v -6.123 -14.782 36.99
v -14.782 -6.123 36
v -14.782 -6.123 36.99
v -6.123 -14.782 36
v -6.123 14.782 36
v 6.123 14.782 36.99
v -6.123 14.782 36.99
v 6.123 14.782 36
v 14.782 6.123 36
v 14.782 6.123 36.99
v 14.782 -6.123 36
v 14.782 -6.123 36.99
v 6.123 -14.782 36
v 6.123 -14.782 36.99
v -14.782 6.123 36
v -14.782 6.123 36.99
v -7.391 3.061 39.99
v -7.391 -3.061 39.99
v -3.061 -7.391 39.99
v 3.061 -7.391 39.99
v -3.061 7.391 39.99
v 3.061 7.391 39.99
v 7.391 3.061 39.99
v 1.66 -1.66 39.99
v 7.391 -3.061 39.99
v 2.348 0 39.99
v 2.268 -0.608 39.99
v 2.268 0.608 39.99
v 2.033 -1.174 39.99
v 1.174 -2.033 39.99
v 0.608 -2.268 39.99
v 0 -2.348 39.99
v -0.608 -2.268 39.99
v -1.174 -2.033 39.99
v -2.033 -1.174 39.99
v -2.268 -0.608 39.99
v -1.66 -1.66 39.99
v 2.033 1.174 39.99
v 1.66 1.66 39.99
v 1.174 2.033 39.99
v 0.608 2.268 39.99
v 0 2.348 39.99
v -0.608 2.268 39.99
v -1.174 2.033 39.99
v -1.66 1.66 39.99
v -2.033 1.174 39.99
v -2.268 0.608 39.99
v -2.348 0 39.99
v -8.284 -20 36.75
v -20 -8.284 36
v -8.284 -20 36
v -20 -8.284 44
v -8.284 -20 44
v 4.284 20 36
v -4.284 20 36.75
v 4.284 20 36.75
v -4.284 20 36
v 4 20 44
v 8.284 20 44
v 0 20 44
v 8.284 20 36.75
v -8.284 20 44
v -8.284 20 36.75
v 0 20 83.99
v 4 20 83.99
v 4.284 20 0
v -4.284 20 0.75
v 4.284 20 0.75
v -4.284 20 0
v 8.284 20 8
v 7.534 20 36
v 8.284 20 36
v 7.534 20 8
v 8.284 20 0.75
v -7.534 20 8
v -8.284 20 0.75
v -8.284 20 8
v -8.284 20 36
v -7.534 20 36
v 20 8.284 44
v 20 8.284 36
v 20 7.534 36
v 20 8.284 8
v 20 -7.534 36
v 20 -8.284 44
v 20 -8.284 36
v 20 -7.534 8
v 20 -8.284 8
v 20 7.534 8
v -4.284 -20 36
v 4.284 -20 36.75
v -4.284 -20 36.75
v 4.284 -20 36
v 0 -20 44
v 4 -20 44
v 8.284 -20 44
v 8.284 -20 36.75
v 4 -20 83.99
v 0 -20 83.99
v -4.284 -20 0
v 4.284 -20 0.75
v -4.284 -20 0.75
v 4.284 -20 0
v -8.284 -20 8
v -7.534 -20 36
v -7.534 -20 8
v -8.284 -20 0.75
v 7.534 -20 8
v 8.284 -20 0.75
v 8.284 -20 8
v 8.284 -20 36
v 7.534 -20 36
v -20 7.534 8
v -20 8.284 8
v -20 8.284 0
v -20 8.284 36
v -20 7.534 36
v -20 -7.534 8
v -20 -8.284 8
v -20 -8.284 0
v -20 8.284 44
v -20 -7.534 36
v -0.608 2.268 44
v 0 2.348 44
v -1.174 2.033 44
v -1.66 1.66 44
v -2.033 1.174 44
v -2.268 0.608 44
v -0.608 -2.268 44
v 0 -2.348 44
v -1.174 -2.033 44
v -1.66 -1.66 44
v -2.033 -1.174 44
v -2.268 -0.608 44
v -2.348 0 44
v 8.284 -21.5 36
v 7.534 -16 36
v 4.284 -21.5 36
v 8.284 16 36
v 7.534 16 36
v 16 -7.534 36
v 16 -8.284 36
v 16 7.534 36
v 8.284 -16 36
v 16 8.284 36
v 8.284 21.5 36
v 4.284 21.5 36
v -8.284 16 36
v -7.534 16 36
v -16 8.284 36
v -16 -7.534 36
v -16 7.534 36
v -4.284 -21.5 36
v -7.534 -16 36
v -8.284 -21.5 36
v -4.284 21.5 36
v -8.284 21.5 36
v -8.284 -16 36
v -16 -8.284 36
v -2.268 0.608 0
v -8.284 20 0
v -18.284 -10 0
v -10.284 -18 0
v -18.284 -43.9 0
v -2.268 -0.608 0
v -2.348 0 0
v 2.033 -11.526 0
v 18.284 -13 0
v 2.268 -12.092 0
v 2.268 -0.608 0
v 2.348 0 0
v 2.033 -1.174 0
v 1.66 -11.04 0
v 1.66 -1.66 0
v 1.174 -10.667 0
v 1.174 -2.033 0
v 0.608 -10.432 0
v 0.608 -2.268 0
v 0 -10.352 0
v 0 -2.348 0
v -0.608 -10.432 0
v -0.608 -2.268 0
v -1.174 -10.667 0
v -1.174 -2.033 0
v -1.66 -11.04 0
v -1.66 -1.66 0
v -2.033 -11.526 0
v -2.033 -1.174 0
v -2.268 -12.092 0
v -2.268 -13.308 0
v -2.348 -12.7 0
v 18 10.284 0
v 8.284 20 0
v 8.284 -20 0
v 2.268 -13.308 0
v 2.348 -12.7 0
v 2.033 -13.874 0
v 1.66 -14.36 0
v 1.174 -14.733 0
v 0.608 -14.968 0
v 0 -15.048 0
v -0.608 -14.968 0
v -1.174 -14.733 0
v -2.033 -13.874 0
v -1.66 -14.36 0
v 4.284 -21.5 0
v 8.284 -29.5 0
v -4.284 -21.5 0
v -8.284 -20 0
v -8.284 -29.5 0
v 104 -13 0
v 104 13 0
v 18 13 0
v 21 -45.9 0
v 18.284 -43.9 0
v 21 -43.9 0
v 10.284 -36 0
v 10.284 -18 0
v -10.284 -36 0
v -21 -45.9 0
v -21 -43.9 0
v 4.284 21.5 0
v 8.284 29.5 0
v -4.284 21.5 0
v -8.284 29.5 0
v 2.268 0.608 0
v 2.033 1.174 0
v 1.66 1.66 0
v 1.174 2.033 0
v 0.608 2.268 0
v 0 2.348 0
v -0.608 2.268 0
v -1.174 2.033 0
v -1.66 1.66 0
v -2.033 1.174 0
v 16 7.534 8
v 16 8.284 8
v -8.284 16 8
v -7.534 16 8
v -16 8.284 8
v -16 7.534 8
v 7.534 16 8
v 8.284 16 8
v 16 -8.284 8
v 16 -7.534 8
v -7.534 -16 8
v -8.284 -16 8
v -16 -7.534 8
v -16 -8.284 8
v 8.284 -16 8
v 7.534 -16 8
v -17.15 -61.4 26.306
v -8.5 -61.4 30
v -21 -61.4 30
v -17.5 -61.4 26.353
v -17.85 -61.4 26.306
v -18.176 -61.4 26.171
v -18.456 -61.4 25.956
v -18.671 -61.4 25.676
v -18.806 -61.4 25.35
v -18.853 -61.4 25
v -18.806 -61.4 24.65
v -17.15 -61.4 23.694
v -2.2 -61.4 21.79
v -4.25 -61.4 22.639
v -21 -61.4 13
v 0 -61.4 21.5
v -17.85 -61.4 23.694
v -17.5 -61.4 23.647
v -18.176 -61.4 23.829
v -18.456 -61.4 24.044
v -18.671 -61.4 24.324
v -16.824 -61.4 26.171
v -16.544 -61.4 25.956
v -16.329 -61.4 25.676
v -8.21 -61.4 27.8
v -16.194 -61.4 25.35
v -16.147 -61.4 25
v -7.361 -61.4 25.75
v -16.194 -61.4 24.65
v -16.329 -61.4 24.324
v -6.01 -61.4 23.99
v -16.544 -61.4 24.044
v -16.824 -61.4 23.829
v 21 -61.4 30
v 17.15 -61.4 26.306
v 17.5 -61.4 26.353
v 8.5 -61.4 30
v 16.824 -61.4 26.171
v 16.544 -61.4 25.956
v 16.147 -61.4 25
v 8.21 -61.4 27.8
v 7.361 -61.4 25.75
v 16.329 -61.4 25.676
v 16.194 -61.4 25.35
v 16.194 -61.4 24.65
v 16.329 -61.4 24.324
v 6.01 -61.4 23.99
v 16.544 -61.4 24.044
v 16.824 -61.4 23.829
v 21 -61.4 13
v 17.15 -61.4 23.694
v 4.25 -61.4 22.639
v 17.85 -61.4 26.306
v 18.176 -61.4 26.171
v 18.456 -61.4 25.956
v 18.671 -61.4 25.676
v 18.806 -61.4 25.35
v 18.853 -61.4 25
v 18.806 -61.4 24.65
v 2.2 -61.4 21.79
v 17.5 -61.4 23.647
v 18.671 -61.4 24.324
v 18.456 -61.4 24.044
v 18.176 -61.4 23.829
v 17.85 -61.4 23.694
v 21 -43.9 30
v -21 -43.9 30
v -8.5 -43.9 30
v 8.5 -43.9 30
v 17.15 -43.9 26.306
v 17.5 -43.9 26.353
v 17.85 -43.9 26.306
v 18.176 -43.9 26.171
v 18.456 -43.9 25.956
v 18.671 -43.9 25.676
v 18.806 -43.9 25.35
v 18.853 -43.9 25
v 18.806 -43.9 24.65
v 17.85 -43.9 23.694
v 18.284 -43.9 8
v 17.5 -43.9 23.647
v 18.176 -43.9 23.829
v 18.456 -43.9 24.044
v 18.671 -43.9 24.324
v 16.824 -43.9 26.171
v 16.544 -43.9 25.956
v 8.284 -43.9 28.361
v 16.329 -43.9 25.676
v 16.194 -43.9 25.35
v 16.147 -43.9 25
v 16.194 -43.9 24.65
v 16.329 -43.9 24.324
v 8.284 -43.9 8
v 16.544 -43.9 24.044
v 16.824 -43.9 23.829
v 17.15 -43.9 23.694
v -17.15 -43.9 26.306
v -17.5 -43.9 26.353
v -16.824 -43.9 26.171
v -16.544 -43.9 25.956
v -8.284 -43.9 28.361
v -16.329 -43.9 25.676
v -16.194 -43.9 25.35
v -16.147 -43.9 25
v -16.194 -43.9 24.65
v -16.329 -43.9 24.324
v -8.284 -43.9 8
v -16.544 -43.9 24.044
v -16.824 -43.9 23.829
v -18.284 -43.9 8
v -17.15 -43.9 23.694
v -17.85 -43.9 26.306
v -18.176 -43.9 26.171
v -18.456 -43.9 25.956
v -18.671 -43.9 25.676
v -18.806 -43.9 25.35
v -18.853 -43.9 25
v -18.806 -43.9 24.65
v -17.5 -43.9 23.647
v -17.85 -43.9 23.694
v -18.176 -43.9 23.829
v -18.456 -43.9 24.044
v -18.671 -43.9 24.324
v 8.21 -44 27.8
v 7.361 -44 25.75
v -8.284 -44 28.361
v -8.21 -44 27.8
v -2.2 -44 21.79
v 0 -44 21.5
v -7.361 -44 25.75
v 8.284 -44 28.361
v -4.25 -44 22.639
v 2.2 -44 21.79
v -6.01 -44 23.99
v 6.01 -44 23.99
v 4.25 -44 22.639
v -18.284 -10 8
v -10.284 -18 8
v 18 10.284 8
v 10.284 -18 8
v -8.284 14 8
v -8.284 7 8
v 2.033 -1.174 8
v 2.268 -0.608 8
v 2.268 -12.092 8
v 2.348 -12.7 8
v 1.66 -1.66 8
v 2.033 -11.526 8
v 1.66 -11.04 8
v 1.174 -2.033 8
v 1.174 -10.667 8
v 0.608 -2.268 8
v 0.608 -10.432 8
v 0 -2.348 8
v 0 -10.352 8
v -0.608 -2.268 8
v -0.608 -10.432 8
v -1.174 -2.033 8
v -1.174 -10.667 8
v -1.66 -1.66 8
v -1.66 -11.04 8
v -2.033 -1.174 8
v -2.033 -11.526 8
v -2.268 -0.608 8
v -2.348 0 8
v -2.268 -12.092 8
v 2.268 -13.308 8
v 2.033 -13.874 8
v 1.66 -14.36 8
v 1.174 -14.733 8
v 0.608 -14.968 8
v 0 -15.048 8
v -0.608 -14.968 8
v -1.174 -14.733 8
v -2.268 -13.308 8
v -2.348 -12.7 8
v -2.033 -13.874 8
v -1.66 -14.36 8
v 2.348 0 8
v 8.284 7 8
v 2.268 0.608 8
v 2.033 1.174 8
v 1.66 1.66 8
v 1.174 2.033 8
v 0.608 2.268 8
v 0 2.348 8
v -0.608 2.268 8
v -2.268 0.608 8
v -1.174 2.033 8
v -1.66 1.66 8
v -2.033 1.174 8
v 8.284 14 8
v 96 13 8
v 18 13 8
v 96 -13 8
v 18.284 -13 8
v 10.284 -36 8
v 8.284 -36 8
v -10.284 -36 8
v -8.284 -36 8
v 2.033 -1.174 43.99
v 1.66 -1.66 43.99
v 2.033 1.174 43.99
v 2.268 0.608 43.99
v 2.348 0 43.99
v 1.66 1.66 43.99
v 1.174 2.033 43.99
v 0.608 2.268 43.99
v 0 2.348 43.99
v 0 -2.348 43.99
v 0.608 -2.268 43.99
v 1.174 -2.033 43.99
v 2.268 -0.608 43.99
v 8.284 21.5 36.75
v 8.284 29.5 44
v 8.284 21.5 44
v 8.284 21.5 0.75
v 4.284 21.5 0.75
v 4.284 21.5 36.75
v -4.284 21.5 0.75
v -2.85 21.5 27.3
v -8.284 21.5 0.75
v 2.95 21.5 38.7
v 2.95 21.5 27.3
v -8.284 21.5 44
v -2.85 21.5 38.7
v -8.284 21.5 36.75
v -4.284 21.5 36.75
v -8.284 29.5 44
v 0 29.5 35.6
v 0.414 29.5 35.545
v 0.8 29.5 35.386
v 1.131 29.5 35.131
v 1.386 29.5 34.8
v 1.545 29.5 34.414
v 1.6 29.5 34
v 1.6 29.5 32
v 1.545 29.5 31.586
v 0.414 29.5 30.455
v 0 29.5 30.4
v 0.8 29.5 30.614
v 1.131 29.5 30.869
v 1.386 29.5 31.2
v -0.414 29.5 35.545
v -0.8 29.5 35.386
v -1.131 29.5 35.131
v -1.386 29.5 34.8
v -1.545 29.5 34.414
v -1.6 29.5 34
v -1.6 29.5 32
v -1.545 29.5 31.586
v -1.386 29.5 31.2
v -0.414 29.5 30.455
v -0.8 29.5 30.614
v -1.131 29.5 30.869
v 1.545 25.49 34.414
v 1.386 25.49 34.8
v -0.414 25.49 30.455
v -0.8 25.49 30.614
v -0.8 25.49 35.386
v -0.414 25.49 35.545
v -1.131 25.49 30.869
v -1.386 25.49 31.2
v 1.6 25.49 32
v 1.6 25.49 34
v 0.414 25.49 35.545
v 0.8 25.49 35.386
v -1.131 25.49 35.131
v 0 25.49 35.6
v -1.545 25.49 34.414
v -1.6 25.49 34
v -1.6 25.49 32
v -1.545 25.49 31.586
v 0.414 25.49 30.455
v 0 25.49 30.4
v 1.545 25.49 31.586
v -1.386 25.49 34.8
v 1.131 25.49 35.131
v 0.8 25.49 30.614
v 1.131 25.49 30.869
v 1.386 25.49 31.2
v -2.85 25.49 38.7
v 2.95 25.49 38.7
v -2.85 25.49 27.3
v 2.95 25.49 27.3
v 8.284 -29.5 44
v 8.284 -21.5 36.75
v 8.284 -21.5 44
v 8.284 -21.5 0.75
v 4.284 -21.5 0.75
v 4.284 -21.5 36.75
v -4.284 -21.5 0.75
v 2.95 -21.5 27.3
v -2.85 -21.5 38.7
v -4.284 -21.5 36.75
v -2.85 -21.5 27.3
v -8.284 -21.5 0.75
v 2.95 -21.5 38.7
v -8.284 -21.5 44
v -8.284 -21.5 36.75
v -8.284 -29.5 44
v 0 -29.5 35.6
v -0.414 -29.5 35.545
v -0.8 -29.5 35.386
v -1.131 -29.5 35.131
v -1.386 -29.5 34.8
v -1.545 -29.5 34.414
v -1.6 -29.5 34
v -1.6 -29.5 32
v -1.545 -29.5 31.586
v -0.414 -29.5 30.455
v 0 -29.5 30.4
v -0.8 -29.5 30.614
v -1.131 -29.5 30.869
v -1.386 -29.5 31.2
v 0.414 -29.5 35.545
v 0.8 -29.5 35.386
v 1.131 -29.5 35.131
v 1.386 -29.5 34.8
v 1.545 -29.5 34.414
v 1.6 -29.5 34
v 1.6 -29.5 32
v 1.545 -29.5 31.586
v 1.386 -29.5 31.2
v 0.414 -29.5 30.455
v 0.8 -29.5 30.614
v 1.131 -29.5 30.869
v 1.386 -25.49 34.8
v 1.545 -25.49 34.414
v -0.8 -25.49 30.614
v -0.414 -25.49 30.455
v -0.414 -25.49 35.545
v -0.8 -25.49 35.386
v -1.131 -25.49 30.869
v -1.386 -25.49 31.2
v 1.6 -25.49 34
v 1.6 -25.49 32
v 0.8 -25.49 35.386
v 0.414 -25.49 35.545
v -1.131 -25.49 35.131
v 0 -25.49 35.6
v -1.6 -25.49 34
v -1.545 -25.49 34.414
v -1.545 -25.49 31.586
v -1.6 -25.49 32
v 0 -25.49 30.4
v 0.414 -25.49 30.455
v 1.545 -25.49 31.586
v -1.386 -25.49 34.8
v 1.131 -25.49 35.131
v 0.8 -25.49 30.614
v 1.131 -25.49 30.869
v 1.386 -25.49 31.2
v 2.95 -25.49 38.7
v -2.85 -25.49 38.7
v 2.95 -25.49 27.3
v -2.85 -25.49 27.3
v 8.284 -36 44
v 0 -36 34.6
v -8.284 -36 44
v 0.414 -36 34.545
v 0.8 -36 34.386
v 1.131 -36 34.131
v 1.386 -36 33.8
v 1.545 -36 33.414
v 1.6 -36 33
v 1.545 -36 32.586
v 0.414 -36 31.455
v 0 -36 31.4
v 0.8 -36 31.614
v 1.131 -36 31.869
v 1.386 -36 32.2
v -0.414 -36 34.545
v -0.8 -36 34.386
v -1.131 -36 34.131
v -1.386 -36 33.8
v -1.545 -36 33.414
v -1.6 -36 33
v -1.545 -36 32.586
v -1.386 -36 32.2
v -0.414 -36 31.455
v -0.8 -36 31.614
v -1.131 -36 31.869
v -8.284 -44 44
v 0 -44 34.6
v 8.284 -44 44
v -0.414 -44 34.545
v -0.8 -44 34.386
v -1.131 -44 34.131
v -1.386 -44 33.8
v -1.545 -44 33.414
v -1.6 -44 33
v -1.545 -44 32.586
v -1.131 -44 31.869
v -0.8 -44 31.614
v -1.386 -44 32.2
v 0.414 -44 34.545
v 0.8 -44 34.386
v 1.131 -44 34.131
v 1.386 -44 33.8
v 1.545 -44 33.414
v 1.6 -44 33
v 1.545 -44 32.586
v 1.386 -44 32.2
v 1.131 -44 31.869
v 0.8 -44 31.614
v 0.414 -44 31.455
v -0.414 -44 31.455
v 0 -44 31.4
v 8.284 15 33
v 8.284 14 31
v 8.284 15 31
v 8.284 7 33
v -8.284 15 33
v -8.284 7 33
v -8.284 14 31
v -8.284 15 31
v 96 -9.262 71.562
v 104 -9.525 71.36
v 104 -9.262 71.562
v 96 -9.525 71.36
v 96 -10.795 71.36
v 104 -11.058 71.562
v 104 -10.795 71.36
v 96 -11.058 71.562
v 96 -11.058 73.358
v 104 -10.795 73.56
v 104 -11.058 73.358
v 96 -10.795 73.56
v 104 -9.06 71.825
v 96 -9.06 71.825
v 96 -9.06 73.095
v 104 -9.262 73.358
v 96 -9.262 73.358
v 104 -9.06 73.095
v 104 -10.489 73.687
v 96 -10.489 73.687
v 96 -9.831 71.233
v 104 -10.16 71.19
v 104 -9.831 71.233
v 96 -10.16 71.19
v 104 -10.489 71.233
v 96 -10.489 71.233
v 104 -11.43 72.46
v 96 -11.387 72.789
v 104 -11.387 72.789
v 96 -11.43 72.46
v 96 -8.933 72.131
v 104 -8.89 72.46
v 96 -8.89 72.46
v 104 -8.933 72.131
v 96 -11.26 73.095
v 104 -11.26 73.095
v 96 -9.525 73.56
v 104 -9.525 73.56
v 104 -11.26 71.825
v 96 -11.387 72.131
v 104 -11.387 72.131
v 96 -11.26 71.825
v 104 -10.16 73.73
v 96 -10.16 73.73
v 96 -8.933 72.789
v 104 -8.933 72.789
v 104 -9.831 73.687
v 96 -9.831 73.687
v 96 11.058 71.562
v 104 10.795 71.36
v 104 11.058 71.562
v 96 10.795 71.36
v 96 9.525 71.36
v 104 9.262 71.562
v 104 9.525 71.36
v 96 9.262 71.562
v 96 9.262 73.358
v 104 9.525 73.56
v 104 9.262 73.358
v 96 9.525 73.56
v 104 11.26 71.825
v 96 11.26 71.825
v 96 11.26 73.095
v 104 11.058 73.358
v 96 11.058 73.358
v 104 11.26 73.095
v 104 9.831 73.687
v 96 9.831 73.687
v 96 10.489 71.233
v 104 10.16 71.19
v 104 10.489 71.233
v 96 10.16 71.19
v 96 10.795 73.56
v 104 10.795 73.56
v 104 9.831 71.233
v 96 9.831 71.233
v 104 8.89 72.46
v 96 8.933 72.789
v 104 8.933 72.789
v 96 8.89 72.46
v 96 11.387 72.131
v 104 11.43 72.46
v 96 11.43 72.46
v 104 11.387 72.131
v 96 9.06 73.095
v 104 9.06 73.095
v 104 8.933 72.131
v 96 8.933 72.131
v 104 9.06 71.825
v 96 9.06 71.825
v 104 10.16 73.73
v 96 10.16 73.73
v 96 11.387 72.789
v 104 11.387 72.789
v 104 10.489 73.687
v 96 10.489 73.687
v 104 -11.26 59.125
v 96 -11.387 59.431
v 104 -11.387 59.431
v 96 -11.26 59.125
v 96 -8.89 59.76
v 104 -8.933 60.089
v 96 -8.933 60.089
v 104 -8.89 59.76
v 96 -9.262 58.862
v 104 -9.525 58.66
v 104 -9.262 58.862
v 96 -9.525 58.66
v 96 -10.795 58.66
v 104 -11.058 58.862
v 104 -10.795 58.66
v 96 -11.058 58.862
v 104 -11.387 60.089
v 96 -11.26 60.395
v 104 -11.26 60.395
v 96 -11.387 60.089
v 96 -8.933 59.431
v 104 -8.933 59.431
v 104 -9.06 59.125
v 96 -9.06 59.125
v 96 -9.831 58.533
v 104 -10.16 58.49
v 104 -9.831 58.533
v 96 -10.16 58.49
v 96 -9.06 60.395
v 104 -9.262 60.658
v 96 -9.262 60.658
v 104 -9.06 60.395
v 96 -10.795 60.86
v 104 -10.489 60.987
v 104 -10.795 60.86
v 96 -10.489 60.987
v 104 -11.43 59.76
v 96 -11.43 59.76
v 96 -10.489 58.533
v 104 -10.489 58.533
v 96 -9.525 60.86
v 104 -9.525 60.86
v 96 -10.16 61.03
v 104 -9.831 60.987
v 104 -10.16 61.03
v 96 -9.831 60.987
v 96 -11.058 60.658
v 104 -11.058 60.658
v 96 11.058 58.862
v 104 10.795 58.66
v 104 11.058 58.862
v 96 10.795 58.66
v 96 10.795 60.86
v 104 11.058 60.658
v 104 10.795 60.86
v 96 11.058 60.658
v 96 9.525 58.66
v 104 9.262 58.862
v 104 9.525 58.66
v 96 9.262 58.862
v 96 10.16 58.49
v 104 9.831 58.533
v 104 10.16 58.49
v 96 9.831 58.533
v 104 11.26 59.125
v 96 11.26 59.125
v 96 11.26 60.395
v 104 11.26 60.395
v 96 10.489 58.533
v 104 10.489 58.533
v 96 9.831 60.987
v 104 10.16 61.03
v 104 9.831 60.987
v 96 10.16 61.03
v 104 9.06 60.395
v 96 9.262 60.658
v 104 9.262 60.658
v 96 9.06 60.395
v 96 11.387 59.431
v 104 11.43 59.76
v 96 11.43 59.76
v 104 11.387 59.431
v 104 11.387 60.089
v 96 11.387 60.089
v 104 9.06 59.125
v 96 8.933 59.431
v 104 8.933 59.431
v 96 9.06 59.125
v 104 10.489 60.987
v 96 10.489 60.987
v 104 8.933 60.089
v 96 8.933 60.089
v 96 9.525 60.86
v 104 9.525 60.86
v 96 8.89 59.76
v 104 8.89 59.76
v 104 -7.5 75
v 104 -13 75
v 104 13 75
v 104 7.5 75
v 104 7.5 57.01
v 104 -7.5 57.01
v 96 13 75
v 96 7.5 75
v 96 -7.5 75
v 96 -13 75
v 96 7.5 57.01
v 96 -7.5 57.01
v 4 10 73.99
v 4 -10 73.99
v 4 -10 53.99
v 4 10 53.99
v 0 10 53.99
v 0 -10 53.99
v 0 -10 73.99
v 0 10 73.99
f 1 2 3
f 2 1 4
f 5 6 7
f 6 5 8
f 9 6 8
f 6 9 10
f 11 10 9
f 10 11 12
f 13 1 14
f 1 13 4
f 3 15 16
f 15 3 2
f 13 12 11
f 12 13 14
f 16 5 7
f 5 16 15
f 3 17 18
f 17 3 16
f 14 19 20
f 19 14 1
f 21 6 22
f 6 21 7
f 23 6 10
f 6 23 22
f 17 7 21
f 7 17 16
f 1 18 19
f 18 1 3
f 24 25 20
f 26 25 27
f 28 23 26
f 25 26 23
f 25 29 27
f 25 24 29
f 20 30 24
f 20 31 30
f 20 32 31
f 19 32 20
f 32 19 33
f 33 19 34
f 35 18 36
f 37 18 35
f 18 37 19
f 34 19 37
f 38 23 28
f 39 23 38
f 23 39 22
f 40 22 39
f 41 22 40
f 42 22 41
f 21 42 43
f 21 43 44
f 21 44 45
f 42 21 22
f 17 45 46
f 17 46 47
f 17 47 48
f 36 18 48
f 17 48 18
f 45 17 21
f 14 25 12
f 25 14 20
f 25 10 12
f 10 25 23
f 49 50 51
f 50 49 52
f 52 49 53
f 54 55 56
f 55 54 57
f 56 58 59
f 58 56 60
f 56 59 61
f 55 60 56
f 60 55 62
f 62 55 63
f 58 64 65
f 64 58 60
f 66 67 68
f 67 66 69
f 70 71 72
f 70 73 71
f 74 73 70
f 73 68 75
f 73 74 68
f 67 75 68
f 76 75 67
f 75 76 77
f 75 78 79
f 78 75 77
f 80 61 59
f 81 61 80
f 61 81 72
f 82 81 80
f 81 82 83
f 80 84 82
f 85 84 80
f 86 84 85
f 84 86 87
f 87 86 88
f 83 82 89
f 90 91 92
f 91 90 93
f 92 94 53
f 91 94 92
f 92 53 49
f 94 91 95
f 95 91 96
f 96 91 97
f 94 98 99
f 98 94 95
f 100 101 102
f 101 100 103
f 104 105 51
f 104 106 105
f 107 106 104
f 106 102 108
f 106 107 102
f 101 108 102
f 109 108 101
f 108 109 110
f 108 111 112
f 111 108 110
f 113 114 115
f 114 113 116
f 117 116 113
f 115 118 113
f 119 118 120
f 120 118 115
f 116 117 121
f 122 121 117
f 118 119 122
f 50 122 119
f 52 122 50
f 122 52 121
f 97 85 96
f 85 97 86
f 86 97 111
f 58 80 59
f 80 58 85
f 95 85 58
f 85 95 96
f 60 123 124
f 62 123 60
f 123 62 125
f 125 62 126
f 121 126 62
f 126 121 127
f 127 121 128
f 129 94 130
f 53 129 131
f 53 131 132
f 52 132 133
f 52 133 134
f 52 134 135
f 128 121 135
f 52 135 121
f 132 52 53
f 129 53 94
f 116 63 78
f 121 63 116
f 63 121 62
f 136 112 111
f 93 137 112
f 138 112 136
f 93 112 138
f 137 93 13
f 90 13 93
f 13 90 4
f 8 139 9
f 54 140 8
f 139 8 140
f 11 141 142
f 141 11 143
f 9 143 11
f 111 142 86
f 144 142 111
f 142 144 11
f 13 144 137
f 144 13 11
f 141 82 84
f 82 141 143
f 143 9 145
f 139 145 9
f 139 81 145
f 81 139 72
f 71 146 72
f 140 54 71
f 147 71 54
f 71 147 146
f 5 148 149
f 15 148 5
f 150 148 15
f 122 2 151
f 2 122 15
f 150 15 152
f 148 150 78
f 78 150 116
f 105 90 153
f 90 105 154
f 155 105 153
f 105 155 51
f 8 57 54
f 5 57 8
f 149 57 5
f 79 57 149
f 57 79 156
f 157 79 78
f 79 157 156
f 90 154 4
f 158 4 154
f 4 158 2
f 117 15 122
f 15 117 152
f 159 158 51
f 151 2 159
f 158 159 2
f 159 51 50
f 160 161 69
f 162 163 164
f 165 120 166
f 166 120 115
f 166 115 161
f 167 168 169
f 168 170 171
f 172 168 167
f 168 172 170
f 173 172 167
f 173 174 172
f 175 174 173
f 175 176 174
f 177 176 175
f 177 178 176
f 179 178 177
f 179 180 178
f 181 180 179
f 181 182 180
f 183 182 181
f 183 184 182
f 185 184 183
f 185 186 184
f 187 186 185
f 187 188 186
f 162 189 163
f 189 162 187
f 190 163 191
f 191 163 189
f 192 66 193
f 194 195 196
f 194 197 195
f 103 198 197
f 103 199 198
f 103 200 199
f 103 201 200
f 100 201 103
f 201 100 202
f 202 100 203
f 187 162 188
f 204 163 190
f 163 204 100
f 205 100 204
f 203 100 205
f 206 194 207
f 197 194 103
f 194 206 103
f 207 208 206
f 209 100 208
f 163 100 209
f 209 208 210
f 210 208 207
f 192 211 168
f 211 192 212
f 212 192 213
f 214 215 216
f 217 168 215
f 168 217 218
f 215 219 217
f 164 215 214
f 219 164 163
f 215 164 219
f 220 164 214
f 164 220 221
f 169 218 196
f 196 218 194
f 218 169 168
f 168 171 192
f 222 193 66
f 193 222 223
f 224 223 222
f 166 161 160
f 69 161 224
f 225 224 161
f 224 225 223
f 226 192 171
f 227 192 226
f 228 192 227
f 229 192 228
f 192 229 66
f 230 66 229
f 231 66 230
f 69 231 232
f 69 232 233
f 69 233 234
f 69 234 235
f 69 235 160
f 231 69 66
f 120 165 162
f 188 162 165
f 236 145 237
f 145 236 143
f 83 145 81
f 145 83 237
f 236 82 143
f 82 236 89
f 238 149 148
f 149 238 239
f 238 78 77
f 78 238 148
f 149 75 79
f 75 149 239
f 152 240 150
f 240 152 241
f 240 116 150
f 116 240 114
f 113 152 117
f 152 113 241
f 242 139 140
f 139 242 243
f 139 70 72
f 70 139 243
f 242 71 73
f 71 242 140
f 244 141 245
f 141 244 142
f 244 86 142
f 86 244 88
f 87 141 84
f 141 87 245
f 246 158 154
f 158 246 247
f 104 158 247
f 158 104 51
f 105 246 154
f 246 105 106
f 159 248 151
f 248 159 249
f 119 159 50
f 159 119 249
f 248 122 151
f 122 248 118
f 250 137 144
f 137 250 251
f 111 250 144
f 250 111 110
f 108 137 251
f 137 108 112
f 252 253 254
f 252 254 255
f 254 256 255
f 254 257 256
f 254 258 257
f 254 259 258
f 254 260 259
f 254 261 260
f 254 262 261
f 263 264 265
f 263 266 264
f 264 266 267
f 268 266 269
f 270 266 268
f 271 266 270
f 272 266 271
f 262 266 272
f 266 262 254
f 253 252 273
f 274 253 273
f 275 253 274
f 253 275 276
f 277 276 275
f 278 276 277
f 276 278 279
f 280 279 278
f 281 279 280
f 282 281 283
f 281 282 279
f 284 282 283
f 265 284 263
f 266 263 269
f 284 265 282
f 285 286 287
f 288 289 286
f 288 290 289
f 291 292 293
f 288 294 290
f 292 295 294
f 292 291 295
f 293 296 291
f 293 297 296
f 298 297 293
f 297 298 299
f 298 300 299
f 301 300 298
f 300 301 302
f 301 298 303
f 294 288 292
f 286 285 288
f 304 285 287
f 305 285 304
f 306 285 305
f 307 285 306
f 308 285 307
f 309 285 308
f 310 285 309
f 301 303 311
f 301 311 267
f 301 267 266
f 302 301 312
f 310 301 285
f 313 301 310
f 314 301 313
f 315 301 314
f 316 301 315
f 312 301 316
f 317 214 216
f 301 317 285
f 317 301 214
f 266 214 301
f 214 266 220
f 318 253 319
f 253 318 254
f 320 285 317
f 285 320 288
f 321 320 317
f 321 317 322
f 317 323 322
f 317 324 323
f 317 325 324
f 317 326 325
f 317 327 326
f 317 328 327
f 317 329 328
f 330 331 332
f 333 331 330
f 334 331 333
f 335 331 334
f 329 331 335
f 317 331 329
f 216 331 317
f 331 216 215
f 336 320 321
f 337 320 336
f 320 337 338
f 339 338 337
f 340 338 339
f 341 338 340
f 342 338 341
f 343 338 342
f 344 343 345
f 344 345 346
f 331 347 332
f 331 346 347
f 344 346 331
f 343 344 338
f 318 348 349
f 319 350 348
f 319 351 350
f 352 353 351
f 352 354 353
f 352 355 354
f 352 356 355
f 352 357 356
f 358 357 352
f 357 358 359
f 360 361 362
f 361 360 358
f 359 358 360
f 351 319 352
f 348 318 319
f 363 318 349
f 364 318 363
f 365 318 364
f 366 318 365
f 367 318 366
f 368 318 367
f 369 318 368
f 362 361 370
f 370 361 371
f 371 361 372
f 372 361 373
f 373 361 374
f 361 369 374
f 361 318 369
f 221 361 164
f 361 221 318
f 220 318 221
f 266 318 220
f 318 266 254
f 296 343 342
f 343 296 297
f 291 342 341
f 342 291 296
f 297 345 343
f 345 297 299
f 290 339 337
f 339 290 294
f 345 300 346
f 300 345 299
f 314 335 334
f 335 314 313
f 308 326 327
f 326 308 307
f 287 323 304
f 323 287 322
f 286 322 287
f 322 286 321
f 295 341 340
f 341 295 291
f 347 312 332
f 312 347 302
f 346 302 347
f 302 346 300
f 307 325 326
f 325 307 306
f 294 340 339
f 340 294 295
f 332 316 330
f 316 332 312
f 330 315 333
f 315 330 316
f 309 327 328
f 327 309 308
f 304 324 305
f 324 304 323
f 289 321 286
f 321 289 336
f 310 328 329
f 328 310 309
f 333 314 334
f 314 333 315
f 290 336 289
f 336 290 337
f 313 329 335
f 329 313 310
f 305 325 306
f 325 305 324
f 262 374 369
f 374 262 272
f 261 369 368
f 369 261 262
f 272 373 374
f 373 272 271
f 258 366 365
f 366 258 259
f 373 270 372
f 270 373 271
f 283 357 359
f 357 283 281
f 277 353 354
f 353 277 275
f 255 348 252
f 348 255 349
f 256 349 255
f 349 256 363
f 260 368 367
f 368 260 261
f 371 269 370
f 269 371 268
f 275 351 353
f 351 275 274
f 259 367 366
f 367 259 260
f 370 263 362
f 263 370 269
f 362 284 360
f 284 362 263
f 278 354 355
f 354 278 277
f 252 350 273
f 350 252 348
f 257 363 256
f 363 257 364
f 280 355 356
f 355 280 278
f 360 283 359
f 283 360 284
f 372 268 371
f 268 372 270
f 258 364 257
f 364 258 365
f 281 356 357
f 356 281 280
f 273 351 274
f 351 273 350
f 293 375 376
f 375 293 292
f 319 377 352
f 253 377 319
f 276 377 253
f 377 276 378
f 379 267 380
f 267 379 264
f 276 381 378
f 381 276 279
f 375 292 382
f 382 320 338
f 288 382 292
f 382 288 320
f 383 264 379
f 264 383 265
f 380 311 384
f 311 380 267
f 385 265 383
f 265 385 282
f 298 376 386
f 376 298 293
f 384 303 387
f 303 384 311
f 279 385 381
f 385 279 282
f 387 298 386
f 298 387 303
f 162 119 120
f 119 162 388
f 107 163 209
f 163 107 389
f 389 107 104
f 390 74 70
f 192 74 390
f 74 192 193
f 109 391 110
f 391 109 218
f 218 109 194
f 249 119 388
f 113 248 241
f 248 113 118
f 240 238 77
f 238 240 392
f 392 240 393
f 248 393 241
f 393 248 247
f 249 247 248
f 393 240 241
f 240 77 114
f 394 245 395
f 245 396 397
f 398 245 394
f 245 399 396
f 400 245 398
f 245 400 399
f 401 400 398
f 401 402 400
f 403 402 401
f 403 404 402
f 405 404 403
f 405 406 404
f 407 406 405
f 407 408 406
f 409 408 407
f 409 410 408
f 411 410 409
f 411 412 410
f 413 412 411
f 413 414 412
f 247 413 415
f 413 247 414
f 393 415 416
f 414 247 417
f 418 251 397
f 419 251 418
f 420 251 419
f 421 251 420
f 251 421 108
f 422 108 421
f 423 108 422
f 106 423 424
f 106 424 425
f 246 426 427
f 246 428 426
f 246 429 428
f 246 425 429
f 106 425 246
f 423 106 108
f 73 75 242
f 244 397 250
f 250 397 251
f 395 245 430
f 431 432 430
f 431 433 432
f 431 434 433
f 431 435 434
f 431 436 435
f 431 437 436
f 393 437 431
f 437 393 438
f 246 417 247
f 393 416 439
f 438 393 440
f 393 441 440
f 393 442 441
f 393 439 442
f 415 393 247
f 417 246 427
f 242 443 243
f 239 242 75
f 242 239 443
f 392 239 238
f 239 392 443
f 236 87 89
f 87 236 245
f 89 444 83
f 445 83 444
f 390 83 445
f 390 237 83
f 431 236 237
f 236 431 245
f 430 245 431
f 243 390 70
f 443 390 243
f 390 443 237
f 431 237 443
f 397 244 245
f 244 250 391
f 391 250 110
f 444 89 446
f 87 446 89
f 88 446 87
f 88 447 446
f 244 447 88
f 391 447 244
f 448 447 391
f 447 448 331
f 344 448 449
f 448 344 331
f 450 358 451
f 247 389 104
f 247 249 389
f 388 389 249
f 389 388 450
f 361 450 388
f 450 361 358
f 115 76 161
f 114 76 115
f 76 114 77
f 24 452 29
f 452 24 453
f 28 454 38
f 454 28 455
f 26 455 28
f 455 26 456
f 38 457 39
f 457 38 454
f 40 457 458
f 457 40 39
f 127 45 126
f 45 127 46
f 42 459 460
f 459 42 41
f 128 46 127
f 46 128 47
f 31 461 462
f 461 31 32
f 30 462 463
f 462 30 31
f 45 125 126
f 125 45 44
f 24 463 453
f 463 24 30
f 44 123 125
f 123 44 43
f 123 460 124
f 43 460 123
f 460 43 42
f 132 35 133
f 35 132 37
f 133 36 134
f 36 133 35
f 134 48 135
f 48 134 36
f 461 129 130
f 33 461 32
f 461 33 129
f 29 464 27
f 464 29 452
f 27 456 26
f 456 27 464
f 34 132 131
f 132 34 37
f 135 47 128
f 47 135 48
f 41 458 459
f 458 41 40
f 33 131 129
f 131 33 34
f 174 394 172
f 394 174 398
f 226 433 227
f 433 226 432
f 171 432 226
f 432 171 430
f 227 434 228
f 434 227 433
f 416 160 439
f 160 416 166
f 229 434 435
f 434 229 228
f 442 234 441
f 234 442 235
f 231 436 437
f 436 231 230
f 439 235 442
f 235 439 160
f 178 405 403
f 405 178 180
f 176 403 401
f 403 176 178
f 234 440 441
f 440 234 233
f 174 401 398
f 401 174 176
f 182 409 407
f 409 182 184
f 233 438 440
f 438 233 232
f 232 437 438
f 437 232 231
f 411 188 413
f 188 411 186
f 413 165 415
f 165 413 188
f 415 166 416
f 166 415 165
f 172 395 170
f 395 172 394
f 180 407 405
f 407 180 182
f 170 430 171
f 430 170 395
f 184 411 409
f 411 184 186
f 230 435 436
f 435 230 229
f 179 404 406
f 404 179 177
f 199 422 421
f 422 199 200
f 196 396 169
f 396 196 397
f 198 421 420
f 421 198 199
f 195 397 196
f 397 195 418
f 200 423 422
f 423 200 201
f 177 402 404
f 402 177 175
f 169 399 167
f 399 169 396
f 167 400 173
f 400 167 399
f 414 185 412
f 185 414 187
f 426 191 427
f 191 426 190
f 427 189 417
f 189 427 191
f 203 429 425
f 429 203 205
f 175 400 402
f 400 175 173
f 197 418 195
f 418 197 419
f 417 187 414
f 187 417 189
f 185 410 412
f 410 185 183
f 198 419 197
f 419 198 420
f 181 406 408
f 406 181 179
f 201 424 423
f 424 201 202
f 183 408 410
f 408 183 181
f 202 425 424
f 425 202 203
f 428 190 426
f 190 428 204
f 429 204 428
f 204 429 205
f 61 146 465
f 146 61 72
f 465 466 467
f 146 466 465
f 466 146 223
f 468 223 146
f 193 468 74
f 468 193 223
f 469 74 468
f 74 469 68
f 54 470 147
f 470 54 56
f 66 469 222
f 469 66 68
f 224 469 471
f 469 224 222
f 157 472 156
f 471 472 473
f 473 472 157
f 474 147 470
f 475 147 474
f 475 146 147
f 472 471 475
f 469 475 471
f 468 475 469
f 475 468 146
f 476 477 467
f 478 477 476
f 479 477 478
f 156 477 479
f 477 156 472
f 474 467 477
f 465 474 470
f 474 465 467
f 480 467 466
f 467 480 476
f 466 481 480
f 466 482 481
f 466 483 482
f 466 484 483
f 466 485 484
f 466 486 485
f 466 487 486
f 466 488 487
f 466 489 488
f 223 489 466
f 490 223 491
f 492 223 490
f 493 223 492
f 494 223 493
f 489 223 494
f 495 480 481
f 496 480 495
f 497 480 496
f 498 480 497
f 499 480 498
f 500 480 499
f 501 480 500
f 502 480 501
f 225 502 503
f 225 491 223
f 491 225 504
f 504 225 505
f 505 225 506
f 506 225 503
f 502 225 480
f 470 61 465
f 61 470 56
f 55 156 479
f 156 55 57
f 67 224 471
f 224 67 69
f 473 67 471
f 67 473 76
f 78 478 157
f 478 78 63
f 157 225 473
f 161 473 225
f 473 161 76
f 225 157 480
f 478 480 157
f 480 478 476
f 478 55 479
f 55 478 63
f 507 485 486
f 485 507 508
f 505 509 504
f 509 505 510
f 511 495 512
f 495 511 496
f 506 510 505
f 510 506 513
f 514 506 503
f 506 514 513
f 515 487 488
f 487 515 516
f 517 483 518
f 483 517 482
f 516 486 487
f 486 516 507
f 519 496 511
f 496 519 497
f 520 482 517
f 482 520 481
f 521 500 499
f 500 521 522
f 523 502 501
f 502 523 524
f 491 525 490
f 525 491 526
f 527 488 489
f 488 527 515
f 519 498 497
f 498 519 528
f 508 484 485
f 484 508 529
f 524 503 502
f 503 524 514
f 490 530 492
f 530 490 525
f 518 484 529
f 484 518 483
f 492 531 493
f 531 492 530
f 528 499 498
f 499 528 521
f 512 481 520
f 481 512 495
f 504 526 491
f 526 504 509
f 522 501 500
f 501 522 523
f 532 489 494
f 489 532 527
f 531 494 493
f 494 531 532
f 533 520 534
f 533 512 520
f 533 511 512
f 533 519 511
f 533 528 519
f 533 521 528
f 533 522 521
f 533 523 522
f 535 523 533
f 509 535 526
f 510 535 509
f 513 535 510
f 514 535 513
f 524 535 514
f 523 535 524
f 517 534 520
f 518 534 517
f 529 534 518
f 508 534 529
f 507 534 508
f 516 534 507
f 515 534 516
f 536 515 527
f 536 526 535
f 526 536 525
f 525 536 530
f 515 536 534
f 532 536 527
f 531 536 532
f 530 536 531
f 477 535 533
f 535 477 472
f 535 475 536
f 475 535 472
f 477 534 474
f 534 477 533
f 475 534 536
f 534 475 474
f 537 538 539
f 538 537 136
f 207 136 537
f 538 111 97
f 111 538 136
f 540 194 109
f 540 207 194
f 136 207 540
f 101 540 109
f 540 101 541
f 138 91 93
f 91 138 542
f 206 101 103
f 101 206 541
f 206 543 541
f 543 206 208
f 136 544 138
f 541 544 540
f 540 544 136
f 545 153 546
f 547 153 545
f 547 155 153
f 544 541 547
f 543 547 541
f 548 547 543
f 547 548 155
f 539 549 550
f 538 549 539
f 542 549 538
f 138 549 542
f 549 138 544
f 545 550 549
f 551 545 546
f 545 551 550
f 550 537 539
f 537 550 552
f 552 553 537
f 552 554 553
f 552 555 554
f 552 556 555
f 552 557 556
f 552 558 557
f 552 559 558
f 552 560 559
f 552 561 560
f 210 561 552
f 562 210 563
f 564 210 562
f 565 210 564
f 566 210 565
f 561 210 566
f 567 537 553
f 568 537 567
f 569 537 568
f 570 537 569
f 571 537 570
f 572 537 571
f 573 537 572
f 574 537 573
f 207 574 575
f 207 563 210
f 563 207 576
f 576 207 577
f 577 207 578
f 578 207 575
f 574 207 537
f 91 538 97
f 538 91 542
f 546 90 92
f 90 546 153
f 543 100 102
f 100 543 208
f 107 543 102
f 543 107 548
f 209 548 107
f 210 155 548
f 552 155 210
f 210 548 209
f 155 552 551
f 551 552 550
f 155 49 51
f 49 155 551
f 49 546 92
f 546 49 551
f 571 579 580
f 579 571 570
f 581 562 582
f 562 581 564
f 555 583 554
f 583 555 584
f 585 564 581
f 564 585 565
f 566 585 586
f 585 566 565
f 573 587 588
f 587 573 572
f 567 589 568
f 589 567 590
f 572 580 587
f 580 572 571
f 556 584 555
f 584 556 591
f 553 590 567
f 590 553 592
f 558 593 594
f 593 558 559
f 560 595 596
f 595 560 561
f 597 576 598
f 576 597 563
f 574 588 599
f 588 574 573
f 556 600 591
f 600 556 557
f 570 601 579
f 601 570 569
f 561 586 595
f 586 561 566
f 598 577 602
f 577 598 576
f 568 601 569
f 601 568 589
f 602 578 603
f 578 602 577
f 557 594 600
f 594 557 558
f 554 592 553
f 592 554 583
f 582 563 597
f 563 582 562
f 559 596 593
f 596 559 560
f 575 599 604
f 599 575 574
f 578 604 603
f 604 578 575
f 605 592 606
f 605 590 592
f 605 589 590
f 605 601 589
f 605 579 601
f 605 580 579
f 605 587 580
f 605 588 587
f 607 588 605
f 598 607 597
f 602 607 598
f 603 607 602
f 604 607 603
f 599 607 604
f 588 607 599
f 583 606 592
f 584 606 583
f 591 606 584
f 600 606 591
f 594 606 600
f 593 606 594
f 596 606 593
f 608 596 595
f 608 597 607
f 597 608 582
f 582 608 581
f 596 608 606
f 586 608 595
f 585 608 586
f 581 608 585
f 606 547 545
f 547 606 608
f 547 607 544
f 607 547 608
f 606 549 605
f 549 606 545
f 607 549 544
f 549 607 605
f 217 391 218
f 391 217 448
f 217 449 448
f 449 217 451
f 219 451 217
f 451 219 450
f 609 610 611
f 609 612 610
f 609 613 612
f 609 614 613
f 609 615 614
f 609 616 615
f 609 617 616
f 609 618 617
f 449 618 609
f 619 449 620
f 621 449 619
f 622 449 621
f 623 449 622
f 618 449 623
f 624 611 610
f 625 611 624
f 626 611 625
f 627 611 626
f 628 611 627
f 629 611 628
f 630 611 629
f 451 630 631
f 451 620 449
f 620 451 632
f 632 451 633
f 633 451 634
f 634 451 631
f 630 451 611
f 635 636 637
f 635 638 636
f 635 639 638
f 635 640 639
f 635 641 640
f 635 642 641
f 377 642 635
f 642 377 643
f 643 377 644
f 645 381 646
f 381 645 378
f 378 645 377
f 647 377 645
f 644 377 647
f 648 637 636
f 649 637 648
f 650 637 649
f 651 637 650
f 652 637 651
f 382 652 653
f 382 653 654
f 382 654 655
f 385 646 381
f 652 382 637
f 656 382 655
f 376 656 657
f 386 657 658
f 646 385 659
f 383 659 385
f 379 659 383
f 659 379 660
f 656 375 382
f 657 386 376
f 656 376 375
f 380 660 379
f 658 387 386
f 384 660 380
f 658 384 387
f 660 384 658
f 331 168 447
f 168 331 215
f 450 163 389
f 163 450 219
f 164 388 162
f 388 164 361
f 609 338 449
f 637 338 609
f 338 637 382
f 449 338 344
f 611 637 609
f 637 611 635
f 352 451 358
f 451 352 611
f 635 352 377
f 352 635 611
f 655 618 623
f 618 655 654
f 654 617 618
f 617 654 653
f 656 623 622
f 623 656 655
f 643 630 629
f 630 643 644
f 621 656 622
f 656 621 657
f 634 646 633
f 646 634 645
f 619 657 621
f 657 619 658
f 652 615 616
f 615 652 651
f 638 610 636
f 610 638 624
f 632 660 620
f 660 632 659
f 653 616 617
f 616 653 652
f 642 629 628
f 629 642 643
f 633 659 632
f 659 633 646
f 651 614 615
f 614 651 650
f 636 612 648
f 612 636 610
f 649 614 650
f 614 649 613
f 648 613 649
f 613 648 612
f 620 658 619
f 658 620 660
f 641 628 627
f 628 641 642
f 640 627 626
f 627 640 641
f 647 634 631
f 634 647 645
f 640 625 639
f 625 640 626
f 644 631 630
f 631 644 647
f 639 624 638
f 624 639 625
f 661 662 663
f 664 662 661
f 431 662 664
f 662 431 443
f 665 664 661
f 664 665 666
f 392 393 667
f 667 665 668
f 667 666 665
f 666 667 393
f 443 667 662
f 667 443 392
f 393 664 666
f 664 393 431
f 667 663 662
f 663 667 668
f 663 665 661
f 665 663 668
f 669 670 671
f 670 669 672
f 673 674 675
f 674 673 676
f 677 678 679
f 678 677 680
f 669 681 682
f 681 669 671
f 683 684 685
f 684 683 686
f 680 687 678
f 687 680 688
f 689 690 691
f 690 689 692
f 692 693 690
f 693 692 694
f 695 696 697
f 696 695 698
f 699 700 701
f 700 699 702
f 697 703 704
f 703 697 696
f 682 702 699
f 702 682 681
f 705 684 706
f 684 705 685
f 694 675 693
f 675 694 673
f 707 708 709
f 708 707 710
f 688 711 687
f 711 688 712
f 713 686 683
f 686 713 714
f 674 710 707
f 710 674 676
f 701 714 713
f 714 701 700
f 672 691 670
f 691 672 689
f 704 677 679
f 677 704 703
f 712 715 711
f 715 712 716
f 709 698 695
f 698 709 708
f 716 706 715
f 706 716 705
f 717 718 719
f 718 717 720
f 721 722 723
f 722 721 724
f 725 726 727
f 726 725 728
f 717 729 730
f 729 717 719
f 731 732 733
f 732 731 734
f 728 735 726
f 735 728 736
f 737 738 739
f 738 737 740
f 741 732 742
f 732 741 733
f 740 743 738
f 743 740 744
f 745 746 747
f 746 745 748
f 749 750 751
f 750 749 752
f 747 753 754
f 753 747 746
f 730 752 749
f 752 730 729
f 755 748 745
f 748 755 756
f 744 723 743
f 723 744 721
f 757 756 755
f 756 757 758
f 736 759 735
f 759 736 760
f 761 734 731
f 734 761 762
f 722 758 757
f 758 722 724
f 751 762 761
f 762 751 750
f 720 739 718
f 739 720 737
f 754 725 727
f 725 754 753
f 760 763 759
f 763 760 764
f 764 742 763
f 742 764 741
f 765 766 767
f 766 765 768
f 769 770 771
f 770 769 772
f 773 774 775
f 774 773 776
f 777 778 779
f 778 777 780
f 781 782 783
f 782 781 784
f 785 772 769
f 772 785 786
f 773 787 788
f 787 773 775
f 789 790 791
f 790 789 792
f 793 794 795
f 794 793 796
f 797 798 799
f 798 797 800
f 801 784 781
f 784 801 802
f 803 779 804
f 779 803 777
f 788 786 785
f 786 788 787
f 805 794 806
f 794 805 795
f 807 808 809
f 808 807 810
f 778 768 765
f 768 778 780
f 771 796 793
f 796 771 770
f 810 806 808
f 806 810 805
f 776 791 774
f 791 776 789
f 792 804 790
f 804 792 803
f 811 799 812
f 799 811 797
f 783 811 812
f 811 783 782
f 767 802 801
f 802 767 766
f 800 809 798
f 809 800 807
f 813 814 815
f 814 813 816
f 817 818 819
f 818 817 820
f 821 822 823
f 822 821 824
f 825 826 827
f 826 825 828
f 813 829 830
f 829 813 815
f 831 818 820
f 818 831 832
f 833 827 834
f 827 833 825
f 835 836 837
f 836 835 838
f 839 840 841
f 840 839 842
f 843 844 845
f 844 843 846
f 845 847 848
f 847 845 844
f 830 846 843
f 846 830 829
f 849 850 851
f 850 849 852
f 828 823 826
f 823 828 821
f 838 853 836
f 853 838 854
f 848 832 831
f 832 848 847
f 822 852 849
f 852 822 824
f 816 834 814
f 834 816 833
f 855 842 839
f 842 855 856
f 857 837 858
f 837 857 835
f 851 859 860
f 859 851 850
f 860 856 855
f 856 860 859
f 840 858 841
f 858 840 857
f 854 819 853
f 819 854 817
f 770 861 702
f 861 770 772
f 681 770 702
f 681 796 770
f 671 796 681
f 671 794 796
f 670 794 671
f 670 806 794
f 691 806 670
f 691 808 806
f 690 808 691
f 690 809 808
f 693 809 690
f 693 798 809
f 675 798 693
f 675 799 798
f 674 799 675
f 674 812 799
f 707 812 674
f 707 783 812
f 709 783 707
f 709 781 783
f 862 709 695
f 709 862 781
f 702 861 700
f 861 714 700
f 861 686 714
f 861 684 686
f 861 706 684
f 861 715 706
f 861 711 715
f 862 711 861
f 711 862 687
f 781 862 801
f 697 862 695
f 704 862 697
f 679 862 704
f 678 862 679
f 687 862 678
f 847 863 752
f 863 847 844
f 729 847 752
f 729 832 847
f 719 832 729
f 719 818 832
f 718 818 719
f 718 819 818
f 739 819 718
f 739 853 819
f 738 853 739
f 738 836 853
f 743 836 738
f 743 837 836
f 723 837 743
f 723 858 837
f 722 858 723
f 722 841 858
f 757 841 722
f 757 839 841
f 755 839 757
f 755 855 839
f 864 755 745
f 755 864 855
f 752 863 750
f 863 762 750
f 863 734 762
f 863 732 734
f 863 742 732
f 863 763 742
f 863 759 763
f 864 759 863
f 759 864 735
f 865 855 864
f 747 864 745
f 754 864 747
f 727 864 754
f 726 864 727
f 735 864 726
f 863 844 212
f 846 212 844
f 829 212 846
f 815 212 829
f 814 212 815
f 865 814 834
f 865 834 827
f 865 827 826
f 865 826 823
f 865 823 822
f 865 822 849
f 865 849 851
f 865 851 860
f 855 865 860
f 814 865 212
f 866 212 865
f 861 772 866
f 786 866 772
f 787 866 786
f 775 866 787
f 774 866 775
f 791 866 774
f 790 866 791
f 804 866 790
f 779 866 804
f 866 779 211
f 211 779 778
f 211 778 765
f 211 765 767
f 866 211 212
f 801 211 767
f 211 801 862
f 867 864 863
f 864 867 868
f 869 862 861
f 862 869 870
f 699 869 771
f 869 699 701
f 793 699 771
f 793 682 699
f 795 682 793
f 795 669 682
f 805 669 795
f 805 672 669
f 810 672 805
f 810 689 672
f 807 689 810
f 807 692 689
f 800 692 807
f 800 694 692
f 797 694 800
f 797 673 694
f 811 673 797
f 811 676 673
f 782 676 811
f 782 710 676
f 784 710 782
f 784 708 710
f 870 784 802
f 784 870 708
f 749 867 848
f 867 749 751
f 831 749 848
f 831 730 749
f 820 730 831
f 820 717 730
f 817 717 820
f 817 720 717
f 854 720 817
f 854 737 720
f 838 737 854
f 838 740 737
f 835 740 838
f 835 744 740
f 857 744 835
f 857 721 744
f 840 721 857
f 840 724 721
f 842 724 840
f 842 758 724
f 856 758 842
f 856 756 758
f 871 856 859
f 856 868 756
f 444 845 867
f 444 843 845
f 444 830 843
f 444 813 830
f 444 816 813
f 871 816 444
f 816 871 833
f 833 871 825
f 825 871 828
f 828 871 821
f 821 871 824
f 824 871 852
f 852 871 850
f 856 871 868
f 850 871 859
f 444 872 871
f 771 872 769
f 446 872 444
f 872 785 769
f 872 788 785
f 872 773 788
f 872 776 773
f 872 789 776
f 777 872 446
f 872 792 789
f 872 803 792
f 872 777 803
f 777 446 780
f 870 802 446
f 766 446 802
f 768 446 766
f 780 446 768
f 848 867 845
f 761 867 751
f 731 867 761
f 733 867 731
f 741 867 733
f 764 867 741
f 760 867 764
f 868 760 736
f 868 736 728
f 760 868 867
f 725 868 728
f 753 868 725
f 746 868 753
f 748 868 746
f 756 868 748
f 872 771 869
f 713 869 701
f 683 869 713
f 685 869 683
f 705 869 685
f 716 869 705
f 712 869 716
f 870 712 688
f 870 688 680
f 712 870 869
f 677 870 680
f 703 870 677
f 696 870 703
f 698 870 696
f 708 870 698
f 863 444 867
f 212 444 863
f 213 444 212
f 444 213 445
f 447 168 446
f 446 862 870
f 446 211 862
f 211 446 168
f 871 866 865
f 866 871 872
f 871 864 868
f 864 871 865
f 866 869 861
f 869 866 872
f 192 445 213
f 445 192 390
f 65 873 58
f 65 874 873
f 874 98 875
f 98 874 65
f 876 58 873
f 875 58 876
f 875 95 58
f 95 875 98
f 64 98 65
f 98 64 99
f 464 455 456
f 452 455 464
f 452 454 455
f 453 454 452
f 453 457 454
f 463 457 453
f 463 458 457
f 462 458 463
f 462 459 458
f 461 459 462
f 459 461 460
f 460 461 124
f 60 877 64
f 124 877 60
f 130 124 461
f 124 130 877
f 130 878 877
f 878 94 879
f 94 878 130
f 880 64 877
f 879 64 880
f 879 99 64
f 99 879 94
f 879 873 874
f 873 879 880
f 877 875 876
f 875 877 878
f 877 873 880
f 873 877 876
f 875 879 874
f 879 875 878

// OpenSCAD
// file: screws.scad
// screws_v15a.scad
// definitions for common screws, threads, clearance holes. etc
// Diameters are specified
// First are the SAE (inches)
// Next the Metric
// ProfHuster@gmail.com
// 2015-10-08
//
$fn = 48;
zz = 0.01;
zz2 = 2*zz;
// define conversion since openSCAD defaults to metric
inch2mm = 25.4;

// tap drill sizes
nc2_56tap = 0.070 * inch2mm;
nc4_40tap = 2.261;
nc6_32tap = 2.705;
nc8_32tap = 3.454;
nc10_24tap = 3.797;
q20tap = 0.2010 * inch2mm;

// nominal sizes
q20nom = 0.250 * inch2mm;
// clearance sizes
nc2_56close = 0.0890 * inch2mm;
nc2_56free = 0.0960 * inch2mm;
nc4_40close = 0.1160 * inch2mm;
nc4_40free = 0.1285 * inch2mm;
nc6_32close = 0.1440 * inch2mm;
nc6_32free = 0.1495 * inch2mm;
nc8_32close = 0.1695 * inch2mm;
nc8_32free = 0.1770 * inch2mm;
nc10_32close = 0.1960 * inch2mm;
nc10_32free = 0.2010 * inch2mm;
q20close = 0.2570 * inch2mm;
q20free = 0.2660 * inch2mm;

// nut sizes
nc4_40NutHex = inch2mm * 1/4;
nc6_32NutHex = inch2mm * 5/16;
nc8_32NutHex = inch2mm * 11/32;
nc10_32NutHex = inch2mm * 3/8;
q20NutHex = inch2mm * 7/16;

nc4_40NutTh = inch2mm * 3/32;
nc6_32NutTh = inch2mm * 7/64;
nc8_32NutTh = inch2mm * 1/8;
nc10_32NutTh = inch2mm * 1/8;
q20NutTh = inch2mm * 3/16;

// socket head cap screws
nc4_40HeadDia = 0.179 * inch2mm;
nc4_40HeadHi = 0.110 * inch2mm;
nc4_40Hex = (3/32) * inch2mm;
nc4_40HexDepth = 0.051 * inch2mm;

nc6_32HeadDia = 0.222 * inch2mm;
nc6_32HeadHi = 0.136 * inch2mm;
nc6_32Hex = (7/64) * inch2mm;
nc6_32HexDepth = 0.064 * inch2mm;

nc8_32HeadDia = 0.266 * inch2mm;
nc8_32HeadHi = 0.162 * inch2mm;
nc8_32Hex = (9/64) * inch2mm;
nc8_32HexDepth = 0.077 * inch2mm;

nc10_24HeadDia = 0.308 * inch2mm;
nc10_24HeadHi = 0.188 * inch2mm;
nc10_24Hex = (5/32) * inch2mm;
nc10_24HexDepth = 0.090 * inch2mm;

q20HeadDia = 0.370 * inch2mm;
q20HeadHi = 0.247 * inch2mm;
q20Hex = (3/16) * inch2mm;
q20HexDepth = 0.120 * inch2mm;

module hexagon(size, height) {
  boxWidth = size/1.75;
  for (r = [-60, 0, 60]) 
    rotate([0,0,r]) 
    cube([boxWidth, size, height], true);
}

module q20screw(length = 1.0 * inch2mm){
    difference() {
        cylinder(q20HeadHi,q20HeadDia/2,q20HeadDia/2);
        translate([0,0,q20HeadHi-q20HexDepth/2]) hexagon(q20Hex,q20HexDepth+zz);
    }
    translate([0,0,-length]) cylinder(length,q20close/2,q20close/2);
}

// test
// q20screw();

// M E T R I C 
m2_5tap = 2.05;
m2_5free = 2.9;
m2_5NutHex = 5.0;
m2_5NutTh = 2.0;

m3_tap = 2.5;
m3_free = 3.4;
m3_NutHex = 5.5;
m3_NutTh = 2.4;

// EOF
// main file
/*************************************************************
X-Y Precision Translation Stage.

(c) Michael Huster 2017, please share under CC-BY 3.0
You can use it for what you like, but attribution would be 
very nice.  Thanks!

v 17c - inspired by open microscope, but flex joints were vertical - Won't work
v 17d - flex joints are horizontal
v 17f - band pulls stage away from adj screw
v 18a - made a little heftier by increasing stageTh, tongueL
  and fixed pillarTh & bandTab for rubber band tongue
  Removed hold_from_bottom and square_to_circle because not used
  Added knobs to attach to stepper motor
v18b - changed to two mount holes
v22a - Added mount arm and holder for light sensor.
v22b - Changed nut capture to sliding groove for drive screw.
*************************************************************/
include <screws.scad>
// $fn=96;
$fn=24;
eps=0.01;
eps2 = 2 * eps;
i2m = 25.4;

printKnobs = false;
printBase = true;
printMotor = false;
printMount = true;
printSpacer = false;
// options
echo("\n=====\n");
// flexure parameters
flex_w = 4; // width of XY axis flexures
flex_l = 1.5;    // length of (all) flexible bits
flex_t = 0.75;   // thickness of (all) flexible bits
flex = [flex_w, flex_l, flex_t]; // the above in new-style format

// Octogon Stage with steps in bottom to help unsupported build
stageW = 40;
stageTh = 8;
stageH = 44; // height from bottom of base to top of stage
step = 0.4; // set step = 0 for no indents in bottom

gapW = 2;  // gap around flex column

tongueL = 16; // length of tongue for adjustment screw
pillarTh = 7; // thickness of interior post to support rubber band
bandTab = 1; // tab to hook rubber band on

// Knob and Motor Adapter
knobDia = 15;
knobTh = 6;
// screw dimensions for M3 bolt & nut
screwD = 3;
screwClr = 0.2;
headW = 5.5;
DY = 1.0; // Amount to enlarge drive hole due to tilting

// imperial 8/32 mount hole
mountHole = nc8_32free + screwClr;

// Stepper Motor Adapter
D_clr = 0.2;
D_dia = 5.0 + 2 * D_clr;
D_flat = 3.0 + 2 * D_clr;

// Stepper Motor Mount
// 28BYJ-48 Motor. 48 steps/rev + 1/16 reduction
holeSep = 35; // distance between mounting holes
holeToAxel = 8; // distance from mounting holes to center of axis
mountD2 = 3.5; // Dist of mount from mount holes
mountD1 = 17; // Dist to end of motor
mountTh = 17.5; // Dist from mount surface to motor surface
mountW = 42;
mountL = 30;
motorZ = stageH-stageTh-screwD;
holeHeight = 25;
clrHoleHeight = holeHeight + holeToAxel;
clrHoleDia = knobDia + 2;

// Mount for light sensor
lightMntW = 26;
lightMntL = 80;
lightMntTh = 8;
lightMntH = 75;
lightGrooveW = 15;
lightGrooveH = 18;
lightGrooveD = lightMntTh+eps2;
holeY = [-0.4*i2m, 0.4*i2m, -0.4*i2m, 0.4*i2m];
holeZ = [-0.1*i2m,-0.1*i2m, -0.6*i2m,-0.6*i2m];
holeD = 0.1*i2m;


module lightMnt(){
    color("thistle")
        translate([stageW/2-2,-lightMntW/2, 0])
            cube([lightMntL, lightMntW, lightMntTh]);
    color("thistle")
    difference(){
        translate([stageW/2+lightMntL-lightMntTh/2,
                    -lightMntW/2, 0])
            cube([lightMntTh, lightMntW, lightMntH]);
        translate([stageW/2+lightMntL-lightMntTh/2-eps,
                    -(lightGrooveW)/2, lightMntH-lightGrooveH+eps])
            cube([lightGrooveD, lightGrooveW, lightGrooveH]);
        for(i=[0:1:3]){
            translate([stageW/2+lightMntL-lightMntTh-eps,
                       holeY[i],
                       lightMntH+holeZ[i]])
                rotate([0,90,0])
                cylinder(h=2*lightMntTh, d=holeD);
        }
    }
}

module motorMount(){
  difference(){
    hull() {
      cube([mountW,mountL,2]);
      translate([0,0,mountTh-1])
        cube([mountW,mountD1,1]);
    }
    translate([mountW/2-holeSep/2,mountL-holeHeight,-eps])
      cylinder(d=nc6_32tap, h=mountTh+eps2);
    translate([mountW/2+holeSep/2,mountL-holeHeight,-eps])
      cylinder(d=nc6_32tap, h=mountTh+eps2);
    translate([mountW/2,0,-eps])
      cylinder(d=clrHoleDia, h=mountTh+eps2);
  }
}
if(printMotor && !printBase){
  color("skyblue")
  translate([20,-80,0])
  motorMount();
}

thetaMax = asin(flex_l / stageTh);
echo("Max angle is ", thetaMax);
echo("1/cos(thetaMax) = ", 1/cos(thetaMax));
echo("Max DX is ", 2*(stageH - stageTh) * sin(thetaMax));
echo("Delta Z is ", (1 - cos(thetaMax)) * (stageH - stageTh));
//
// Modules
//
module stage(W, Th, inset){
    // W is width across flats
    // Th is the thickness of the stage
    // inset (if > 0) is how much is cut away to assist the build
    w2 = W / (1 + sqrt(2));
    lSq1 = (W + w2 / 3) / sqrt(2);
    difference(){
        // Use a cylinder with 8 facets to get an octogon
        rotate([0,0,45/2])
            cylinder(d=W/cos(45/2), h=Th, $fn=8);
        // Optional inset stage to make the build easier
        if(inset != 0){
            translate([0,0,-eps])
            rotate([0,0,45/2])
                cylinder(h=1,d=W-Th,$fn=8);
            translate([0,0,1-eps])
            rotate([0,0,45/2])
                cylinder(h=inset-1,d1=W-Th,d2=2*Th,$fn=8);
        }
    }
}

// A Bar of width W, and length L  and thickness Th with a flex hinge at each end
module flexureBar(flex, W, H, Th){
    // flex = [w,l,th]
    translate([-flex[0]/2, 0, 0])
      cube(flex);
    translate([-flex[0]/2, flex[1], 0])
      cube([W,Th,H]);
    translate([-flex[0]/2, 0, H-Th])
      cube(flex);
}

module tongue(W, legL, off, H, Th, gap){
    //color("red")
    union(){
        difference(){
            union(){
                // make U base
                reflect([1,0,0])
                linear_extrude(Th)
                    polygon([[0,0],[W/2+gap,0],[W/2+gap,legL],
                        [W/2+gap+Th,legL],[W/2+gap+Th,-Th],[0,-Th]]);
                // vertical piece
                translate([-W/2,-Th,0])
                    cube([W, Th, H]); 
            }
            translate([0,-Th-eps,H-Th-screwD])
                rotate([-90,0,0])
                cylinder(d=screwD+screwClr, h=Th+eps2);
        }
    }
}

module nutSlot(W, clr, Th){
    translate([-(W+clr)/2,-(W+clr),0])
        cube([W+1.5*clr,2*(W+clr),Th]);
}

module nutHole(W, clr, Th){
    cylinder(d=(W+clr)*(2/sqrt(3)),h=Th,$fn=6);
}

module base(W, Th, H, st, tL, gap){
    w2 = W / (1 + sqrt(2));
    difference(){
        union(){
            // bottom stage
            stage(W, Th, 0);
            // top stage
            translate([0,0,H - Th])
                stage(W, Th, Th/2);
            // Removable columns for support during build
            reflect([0,1,0])
            reflect([1,0,0]){
                translate([W/2-flex_w,w2/2-flex_t,0])
                    cube([flex_w,flex_t,H]);
                rotate([0,0,90])
                translate([W/2-flex_w,w2/2-flex_t,0])
                    cube([flex_w,flex_t,H]);
            }
            translate([0,-43.9,mountL])
              rotate([0,180,0])
              translate([-mountW/2,0,0])
              rotate([90,0,0])
              motorMount();
        }
        // mount holes in upper and lower stages
        // Upper
        translate([0,0,H-Th])
            cylinder(d=mountHole, h=Th+eps2);
        // Lower. v18b two holes 1/2 inch apart
        translate([0,0,-eps])
            cylinder(d=mountHole, h=Th+eps2);
        translate([0,0-25.4/2,-eps])
            cylinder(d=mountHole, h=Th+eps2);
    }
    // Add flex pillars
    color("cornflowerblue",.9)
    reflect([0,1,0]){
        translate([(w2-flex[0])/2, W/2, 0])
            flexureBar(flex, flex[0], H, Th);
        translate([-(w2-flex[0])/2, W/2, 0])
            flexureBar(flex, flex[0], H, Th);
        // support pillar with adjustment screw hole
        // and nut capture inset
        difference(){
            translate([-(w2-flex[0])/2,W/2+flex[1],0])
                cube([w2-flex[0],Th,H]);
            // v22a enlarge hole vertically due to leaning
            hull(){
              translate([0,W/2+flex[1]+eps,H-Th-screwD])
                rotate([-90,0,0])
                translate([0, DY,0])
                cylinder(d=screwD+screwClr, h=Th+eps2);
              translate([0,W/2+flex[1]+eps,H-Th-screwD])
                rotate([-90,0,0])
                translate([0,-DY,0])
                cylinder(d=screwD+screwClr, h=Th+eps2);
            }
            translate([0,W/2+flex[1]-eps,H-Th-screwD])
                rotate([-90,0,0])
                nutSlot(headW, screwClr, Th/2);
        }
    }
    // tongue to hold adjustment screw
    color("salmon", 0.9)
    translate([0,-W/2-tL,0])
        tongue(w2, tL+W/2, tL, H, Th, gap);

    // tongue to hold rubber band
    translate([-w2/2,pillarTh,0])
        cube([w2, pillarTh, H-Th-screwD]);
    // tab at top to hold rubber band on
    translate([-w2/2,pillarTh,H-Th-screwD-2])
        cube([w2, pillarTh+bandTab, 2]);
}

if(printBase){
    base(stageW, stageTh, stageH, step, tongueL, gapW);
    lightMnt();
}


module reflect(axis){ //reflects its children about the origin, but keeps the originals
	children();
	mirror(axis) children();
}

// Knob but also adapter to use stage with a stepper motor
module driveKnob(){
  color("palegreen")
  difference(){
    // Basic knob
    cylinder(d=knobDia, h=knobTh);
    // clearance hole for screw
    translate([0,0,-eps])
      cylinder(d=screwD+screwClr, h=knobTh+eps2);
    // inset for screw head
    translate([0,0,3])
      nutHole(headW, screwClr, knobTh+eps+3);
  }
  color("palegreen")
  translate([0,-knobDia-1,0])
  difference(){
    // Basic knob
    cylinder(d=knobDia, h=knobTh);
    // clearance hole for screw
    translate([0,0,-eps])
      cylinder(d=screwD+screwClr, h=knobTh+eps2);
    // hole for motor shaft
    translate([0,0,-eps])
      dHole(knobTh+eps2);
  }  
}

module dHole(h){
  intersection(){
    cylinder(d=D_dia, h=h);
    translate([-D_flat/2,-D_dia/2,0]) cube([D_flat,D_dia,h]);
  }
}
//translate([30,0,0]) dHole(stageTh);

if(printKnobs)
  translate([0,-60,0])
    driveKnob();

module mount(){
  difference(){
    cube([stageTh/2,stageW,stageW]);
    translate([-eps,stageW/4,stageW/4])
      cube([stageTh/2+eps2,stageW/2,stageW/2]);
  }
}

if(printMount)
  translate([0,-stageW/2,stageH-eps])
    mount();

module spacer(){
    difference(){
        cylinder(h=2, d=40, $fn=8);
        translate([0,0,-eps])
            cylinder(h=2+eps2, d=mountHole);
    }
}
if(printSpacer){
    translate([0,-110,0])
    color("plum")
    spacer();
}

// EOF
